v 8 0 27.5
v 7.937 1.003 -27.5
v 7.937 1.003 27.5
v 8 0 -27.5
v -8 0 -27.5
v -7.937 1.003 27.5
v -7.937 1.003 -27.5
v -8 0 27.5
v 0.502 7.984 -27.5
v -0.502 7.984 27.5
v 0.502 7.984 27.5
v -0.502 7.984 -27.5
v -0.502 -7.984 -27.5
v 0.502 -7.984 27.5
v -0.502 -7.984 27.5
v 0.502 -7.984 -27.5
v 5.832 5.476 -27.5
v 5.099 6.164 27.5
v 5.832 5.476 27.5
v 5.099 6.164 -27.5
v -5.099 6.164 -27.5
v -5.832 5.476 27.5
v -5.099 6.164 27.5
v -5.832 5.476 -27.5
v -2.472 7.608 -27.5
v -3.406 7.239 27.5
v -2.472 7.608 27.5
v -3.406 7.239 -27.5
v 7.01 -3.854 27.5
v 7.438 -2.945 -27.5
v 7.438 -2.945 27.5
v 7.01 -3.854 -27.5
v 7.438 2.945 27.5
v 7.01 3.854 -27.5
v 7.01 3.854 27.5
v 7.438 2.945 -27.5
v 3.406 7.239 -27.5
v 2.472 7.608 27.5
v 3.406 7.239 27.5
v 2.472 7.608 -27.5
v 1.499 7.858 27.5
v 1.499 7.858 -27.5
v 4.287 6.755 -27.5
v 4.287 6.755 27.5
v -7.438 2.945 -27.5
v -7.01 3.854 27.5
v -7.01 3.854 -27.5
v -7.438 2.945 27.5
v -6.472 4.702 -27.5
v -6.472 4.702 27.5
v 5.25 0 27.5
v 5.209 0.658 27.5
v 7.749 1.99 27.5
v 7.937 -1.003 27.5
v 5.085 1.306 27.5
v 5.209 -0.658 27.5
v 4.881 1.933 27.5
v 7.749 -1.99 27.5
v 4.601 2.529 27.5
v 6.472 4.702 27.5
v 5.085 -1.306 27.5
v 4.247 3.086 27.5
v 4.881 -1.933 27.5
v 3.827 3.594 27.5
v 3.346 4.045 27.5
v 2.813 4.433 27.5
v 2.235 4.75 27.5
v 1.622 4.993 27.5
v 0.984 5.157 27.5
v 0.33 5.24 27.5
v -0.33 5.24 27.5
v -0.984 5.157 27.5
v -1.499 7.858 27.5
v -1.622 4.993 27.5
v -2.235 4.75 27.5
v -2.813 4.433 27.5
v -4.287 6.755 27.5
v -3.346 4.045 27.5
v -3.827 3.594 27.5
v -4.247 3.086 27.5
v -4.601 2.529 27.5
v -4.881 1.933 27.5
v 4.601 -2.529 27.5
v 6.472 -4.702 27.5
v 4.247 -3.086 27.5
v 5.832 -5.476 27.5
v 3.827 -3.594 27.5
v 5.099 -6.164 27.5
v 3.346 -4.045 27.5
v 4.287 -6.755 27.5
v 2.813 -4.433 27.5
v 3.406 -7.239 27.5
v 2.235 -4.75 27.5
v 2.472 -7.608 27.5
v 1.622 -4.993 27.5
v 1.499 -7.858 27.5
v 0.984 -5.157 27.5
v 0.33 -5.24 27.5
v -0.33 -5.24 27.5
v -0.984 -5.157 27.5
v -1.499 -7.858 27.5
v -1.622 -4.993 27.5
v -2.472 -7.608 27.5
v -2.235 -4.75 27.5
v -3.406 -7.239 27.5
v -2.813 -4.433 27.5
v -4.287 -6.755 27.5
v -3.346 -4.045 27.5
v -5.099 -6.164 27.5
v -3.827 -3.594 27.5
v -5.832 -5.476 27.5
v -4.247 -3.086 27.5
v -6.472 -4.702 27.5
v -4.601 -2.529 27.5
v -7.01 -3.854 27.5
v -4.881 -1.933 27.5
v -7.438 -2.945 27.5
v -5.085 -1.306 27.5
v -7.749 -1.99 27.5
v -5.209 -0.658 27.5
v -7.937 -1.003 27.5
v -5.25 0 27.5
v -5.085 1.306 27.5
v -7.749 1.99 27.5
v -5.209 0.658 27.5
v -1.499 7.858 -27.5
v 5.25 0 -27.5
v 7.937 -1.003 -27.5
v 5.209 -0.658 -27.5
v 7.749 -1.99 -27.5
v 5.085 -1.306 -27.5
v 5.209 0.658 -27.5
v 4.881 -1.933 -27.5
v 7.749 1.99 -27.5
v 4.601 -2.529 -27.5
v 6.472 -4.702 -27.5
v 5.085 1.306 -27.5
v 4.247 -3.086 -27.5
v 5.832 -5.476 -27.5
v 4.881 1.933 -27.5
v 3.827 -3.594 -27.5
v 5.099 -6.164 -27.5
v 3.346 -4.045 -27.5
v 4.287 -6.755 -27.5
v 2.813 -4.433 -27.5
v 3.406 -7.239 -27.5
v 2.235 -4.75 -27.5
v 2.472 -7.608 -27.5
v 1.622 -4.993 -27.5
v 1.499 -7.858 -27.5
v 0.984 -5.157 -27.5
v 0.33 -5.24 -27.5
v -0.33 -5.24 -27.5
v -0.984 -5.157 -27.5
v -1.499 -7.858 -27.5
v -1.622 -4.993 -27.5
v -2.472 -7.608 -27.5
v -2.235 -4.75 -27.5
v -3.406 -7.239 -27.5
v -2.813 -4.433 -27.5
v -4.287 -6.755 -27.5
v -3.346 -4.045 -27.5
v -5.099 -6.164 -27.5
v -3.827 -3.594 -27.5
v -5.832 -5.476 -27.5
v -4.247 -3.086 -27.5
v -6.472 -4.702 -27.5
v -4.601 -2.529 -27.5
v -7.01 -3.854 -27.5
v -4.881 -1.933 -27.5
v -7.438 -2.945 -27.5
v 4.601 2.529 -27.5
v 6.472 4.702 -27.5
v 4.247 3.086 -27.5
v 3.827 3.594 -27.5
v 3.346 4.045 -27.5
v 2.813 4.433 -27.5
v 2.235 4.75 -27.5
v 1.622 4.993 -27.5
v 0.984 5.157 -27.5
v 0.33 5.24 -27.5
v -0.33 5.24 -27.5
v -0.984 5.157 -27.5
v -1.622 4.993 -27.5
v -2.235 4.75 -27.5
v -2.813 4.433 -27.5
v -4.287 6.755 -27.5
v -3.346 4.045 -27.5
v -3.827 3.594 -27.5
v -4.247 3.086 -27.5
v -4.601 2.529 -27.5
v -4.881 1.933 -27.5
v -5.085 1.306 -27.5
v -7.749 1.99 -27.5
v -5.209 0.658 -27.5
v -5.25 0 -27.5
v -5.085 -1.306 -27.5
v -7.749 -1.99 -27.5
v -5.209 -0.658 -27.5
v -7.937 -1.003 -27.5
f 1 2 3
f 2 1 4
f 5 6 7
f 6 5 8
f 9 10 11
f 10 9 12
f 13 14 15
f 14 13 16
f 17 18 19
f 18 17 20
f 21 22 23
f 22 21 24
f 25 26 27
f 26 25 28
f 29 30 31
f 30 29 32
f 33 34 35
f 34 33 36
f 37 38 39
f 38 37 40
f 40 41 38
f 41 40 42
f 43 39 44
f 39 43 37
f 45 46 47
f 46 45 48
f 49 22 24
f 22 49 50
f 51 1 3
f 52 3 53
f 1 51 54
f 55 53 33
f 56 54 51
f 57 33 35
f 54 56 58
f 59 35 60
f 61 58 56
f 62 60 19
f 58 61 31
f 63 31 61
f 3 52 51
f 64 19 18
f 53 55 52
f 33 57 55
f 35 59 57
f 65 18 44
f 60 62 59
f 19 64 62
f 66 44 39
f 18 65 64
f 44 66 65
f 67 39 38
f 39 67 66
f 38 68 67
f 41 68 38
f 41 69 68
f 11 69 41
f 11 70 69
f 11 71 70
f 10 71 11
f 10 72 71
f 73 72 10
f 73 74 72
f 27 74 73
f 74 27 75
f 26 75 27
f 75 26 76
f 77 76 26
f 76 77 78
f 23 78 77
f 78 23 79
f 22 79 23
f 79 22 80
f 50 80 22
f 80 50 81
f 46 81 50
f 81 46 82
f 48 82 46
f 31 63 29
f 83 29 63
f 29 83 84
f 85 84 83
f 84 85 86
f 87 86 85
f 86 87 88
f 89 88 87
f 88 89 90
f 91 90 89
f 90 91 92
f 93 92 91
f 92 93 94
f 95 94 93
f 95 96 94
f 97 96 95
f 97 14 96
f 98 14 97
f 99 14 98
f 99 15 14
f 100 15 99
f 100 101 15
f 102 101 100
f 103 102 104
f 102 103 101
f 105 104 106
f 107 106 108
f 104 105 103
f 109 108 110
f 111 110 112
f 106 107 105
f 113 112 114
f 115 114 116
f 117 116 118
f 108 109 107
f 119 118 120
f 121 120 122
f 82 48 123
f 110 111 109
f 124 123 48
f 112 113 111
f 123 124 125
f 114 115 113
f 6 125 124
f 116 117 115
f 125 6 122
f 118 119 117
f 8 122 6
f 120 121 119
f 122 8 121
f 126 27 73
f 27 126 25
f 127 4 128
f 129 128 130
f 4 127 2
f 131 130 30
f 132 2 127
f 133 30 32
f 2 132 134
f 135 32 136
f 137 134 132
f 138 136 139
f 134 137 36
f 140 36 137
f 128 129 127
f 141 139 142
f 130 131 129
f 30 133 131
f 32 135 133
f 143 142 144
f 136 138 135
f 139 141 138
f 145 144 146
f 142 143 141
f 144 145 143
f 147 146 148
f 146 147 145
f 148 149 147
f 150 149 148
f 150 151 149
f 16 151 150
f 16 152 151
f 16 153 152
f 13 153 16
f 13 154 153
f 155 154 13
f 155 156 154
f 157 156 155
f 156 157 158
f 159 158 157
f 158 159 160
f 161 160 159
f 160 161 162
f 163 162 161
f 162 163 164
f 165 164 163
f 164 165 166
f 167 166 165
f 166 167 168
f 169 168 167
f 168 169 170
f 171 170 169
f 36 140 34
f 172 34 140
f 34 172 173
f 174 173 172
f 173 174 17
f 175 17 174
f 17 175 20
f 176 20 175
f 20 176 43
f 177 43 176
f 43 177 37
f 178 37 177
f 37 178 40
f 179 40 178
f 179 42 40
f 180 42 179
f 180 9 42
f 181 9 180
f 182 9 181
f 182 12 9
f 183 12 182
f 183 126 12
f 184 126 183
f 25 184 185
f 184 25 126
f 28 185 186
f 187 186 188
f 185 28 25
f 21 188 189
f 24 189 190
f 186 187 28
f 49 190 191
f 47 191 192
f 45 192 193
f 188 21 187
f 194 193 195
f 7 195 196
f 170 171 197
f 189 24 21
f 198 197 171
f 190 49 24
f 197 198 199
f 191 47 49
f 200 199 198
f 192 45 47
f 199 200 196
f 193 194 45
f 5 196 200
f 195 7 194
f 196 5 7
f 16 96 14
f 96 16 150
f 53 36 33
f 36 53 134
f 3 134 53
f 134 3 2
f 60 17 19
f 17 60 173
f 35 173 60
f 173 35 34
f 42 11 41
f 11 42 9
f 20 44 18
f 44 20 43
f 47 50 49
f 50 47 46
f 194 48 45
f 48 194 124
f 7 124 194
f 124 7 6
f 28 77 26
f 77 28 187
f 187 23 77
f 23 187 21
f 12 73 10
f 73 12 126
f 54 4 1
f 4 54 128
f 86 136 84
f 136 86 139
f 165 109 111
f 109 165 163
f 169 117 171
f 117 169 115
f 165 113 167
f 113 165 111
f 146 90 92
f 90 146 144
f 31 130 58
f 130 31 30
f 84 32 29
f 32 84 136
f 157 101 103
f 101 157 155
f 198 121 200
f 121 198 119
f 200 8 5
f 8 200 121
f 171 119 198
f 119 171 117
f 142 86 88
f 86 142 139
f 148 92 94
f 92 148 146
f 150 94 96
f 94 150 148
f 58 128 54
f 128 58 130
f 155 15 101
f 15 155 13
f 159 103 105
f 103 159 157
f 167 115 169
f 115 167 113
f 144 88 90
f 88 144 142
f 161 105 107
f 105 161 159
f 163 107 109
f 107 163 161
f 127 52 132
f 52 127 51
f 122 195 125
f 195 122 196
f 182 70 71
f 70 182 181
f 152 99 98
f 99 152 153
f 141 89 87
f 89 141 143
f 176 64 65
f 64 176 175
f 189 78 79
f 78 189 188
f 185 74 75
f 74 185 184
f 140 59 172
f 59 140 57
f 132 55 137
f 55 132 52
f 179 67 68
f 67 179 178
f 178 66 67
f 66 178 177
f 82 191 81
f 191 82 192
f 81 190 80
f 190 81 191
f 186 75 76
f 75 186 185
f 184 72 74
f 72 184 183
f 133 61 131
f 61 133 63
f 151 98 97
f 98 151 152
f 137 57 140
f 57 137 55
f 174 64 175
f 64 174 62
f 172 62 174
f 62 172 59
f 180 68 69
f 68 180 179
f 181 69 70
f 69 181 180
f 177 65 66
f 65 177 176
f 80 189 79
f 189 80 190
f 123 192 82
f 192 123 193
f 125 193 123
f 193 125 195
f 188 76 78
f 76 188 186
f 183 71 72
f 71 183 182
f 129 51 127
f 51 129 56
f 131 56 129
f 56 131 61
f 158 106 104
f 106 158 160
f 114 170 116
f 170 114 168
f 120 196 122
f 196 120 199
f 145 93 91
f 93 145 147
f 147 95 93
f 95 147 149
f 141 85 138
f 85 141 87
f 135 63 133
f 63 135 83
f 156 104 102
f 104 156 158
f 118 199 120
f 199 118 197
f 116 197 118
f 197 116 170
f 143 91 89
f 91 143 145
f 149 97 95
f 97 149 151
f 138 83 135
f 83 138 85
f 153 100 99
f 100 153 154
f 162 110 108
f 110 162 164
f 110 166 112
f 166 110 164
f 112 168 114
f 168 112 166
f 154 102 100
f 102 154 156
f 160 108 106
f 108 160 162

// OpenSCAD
$fn = 50;


difference() {
	union() {
		translate(v = [0, 0, -27.5000000000]) {
			cylinder(h = 55, r = 8.0000000000);
		}
	}
	union() {
		translate(v = [0, 0, -100.0000000000]) {
			cylinder(h = 200, r = 5.2500000000);
		}
	}
}
